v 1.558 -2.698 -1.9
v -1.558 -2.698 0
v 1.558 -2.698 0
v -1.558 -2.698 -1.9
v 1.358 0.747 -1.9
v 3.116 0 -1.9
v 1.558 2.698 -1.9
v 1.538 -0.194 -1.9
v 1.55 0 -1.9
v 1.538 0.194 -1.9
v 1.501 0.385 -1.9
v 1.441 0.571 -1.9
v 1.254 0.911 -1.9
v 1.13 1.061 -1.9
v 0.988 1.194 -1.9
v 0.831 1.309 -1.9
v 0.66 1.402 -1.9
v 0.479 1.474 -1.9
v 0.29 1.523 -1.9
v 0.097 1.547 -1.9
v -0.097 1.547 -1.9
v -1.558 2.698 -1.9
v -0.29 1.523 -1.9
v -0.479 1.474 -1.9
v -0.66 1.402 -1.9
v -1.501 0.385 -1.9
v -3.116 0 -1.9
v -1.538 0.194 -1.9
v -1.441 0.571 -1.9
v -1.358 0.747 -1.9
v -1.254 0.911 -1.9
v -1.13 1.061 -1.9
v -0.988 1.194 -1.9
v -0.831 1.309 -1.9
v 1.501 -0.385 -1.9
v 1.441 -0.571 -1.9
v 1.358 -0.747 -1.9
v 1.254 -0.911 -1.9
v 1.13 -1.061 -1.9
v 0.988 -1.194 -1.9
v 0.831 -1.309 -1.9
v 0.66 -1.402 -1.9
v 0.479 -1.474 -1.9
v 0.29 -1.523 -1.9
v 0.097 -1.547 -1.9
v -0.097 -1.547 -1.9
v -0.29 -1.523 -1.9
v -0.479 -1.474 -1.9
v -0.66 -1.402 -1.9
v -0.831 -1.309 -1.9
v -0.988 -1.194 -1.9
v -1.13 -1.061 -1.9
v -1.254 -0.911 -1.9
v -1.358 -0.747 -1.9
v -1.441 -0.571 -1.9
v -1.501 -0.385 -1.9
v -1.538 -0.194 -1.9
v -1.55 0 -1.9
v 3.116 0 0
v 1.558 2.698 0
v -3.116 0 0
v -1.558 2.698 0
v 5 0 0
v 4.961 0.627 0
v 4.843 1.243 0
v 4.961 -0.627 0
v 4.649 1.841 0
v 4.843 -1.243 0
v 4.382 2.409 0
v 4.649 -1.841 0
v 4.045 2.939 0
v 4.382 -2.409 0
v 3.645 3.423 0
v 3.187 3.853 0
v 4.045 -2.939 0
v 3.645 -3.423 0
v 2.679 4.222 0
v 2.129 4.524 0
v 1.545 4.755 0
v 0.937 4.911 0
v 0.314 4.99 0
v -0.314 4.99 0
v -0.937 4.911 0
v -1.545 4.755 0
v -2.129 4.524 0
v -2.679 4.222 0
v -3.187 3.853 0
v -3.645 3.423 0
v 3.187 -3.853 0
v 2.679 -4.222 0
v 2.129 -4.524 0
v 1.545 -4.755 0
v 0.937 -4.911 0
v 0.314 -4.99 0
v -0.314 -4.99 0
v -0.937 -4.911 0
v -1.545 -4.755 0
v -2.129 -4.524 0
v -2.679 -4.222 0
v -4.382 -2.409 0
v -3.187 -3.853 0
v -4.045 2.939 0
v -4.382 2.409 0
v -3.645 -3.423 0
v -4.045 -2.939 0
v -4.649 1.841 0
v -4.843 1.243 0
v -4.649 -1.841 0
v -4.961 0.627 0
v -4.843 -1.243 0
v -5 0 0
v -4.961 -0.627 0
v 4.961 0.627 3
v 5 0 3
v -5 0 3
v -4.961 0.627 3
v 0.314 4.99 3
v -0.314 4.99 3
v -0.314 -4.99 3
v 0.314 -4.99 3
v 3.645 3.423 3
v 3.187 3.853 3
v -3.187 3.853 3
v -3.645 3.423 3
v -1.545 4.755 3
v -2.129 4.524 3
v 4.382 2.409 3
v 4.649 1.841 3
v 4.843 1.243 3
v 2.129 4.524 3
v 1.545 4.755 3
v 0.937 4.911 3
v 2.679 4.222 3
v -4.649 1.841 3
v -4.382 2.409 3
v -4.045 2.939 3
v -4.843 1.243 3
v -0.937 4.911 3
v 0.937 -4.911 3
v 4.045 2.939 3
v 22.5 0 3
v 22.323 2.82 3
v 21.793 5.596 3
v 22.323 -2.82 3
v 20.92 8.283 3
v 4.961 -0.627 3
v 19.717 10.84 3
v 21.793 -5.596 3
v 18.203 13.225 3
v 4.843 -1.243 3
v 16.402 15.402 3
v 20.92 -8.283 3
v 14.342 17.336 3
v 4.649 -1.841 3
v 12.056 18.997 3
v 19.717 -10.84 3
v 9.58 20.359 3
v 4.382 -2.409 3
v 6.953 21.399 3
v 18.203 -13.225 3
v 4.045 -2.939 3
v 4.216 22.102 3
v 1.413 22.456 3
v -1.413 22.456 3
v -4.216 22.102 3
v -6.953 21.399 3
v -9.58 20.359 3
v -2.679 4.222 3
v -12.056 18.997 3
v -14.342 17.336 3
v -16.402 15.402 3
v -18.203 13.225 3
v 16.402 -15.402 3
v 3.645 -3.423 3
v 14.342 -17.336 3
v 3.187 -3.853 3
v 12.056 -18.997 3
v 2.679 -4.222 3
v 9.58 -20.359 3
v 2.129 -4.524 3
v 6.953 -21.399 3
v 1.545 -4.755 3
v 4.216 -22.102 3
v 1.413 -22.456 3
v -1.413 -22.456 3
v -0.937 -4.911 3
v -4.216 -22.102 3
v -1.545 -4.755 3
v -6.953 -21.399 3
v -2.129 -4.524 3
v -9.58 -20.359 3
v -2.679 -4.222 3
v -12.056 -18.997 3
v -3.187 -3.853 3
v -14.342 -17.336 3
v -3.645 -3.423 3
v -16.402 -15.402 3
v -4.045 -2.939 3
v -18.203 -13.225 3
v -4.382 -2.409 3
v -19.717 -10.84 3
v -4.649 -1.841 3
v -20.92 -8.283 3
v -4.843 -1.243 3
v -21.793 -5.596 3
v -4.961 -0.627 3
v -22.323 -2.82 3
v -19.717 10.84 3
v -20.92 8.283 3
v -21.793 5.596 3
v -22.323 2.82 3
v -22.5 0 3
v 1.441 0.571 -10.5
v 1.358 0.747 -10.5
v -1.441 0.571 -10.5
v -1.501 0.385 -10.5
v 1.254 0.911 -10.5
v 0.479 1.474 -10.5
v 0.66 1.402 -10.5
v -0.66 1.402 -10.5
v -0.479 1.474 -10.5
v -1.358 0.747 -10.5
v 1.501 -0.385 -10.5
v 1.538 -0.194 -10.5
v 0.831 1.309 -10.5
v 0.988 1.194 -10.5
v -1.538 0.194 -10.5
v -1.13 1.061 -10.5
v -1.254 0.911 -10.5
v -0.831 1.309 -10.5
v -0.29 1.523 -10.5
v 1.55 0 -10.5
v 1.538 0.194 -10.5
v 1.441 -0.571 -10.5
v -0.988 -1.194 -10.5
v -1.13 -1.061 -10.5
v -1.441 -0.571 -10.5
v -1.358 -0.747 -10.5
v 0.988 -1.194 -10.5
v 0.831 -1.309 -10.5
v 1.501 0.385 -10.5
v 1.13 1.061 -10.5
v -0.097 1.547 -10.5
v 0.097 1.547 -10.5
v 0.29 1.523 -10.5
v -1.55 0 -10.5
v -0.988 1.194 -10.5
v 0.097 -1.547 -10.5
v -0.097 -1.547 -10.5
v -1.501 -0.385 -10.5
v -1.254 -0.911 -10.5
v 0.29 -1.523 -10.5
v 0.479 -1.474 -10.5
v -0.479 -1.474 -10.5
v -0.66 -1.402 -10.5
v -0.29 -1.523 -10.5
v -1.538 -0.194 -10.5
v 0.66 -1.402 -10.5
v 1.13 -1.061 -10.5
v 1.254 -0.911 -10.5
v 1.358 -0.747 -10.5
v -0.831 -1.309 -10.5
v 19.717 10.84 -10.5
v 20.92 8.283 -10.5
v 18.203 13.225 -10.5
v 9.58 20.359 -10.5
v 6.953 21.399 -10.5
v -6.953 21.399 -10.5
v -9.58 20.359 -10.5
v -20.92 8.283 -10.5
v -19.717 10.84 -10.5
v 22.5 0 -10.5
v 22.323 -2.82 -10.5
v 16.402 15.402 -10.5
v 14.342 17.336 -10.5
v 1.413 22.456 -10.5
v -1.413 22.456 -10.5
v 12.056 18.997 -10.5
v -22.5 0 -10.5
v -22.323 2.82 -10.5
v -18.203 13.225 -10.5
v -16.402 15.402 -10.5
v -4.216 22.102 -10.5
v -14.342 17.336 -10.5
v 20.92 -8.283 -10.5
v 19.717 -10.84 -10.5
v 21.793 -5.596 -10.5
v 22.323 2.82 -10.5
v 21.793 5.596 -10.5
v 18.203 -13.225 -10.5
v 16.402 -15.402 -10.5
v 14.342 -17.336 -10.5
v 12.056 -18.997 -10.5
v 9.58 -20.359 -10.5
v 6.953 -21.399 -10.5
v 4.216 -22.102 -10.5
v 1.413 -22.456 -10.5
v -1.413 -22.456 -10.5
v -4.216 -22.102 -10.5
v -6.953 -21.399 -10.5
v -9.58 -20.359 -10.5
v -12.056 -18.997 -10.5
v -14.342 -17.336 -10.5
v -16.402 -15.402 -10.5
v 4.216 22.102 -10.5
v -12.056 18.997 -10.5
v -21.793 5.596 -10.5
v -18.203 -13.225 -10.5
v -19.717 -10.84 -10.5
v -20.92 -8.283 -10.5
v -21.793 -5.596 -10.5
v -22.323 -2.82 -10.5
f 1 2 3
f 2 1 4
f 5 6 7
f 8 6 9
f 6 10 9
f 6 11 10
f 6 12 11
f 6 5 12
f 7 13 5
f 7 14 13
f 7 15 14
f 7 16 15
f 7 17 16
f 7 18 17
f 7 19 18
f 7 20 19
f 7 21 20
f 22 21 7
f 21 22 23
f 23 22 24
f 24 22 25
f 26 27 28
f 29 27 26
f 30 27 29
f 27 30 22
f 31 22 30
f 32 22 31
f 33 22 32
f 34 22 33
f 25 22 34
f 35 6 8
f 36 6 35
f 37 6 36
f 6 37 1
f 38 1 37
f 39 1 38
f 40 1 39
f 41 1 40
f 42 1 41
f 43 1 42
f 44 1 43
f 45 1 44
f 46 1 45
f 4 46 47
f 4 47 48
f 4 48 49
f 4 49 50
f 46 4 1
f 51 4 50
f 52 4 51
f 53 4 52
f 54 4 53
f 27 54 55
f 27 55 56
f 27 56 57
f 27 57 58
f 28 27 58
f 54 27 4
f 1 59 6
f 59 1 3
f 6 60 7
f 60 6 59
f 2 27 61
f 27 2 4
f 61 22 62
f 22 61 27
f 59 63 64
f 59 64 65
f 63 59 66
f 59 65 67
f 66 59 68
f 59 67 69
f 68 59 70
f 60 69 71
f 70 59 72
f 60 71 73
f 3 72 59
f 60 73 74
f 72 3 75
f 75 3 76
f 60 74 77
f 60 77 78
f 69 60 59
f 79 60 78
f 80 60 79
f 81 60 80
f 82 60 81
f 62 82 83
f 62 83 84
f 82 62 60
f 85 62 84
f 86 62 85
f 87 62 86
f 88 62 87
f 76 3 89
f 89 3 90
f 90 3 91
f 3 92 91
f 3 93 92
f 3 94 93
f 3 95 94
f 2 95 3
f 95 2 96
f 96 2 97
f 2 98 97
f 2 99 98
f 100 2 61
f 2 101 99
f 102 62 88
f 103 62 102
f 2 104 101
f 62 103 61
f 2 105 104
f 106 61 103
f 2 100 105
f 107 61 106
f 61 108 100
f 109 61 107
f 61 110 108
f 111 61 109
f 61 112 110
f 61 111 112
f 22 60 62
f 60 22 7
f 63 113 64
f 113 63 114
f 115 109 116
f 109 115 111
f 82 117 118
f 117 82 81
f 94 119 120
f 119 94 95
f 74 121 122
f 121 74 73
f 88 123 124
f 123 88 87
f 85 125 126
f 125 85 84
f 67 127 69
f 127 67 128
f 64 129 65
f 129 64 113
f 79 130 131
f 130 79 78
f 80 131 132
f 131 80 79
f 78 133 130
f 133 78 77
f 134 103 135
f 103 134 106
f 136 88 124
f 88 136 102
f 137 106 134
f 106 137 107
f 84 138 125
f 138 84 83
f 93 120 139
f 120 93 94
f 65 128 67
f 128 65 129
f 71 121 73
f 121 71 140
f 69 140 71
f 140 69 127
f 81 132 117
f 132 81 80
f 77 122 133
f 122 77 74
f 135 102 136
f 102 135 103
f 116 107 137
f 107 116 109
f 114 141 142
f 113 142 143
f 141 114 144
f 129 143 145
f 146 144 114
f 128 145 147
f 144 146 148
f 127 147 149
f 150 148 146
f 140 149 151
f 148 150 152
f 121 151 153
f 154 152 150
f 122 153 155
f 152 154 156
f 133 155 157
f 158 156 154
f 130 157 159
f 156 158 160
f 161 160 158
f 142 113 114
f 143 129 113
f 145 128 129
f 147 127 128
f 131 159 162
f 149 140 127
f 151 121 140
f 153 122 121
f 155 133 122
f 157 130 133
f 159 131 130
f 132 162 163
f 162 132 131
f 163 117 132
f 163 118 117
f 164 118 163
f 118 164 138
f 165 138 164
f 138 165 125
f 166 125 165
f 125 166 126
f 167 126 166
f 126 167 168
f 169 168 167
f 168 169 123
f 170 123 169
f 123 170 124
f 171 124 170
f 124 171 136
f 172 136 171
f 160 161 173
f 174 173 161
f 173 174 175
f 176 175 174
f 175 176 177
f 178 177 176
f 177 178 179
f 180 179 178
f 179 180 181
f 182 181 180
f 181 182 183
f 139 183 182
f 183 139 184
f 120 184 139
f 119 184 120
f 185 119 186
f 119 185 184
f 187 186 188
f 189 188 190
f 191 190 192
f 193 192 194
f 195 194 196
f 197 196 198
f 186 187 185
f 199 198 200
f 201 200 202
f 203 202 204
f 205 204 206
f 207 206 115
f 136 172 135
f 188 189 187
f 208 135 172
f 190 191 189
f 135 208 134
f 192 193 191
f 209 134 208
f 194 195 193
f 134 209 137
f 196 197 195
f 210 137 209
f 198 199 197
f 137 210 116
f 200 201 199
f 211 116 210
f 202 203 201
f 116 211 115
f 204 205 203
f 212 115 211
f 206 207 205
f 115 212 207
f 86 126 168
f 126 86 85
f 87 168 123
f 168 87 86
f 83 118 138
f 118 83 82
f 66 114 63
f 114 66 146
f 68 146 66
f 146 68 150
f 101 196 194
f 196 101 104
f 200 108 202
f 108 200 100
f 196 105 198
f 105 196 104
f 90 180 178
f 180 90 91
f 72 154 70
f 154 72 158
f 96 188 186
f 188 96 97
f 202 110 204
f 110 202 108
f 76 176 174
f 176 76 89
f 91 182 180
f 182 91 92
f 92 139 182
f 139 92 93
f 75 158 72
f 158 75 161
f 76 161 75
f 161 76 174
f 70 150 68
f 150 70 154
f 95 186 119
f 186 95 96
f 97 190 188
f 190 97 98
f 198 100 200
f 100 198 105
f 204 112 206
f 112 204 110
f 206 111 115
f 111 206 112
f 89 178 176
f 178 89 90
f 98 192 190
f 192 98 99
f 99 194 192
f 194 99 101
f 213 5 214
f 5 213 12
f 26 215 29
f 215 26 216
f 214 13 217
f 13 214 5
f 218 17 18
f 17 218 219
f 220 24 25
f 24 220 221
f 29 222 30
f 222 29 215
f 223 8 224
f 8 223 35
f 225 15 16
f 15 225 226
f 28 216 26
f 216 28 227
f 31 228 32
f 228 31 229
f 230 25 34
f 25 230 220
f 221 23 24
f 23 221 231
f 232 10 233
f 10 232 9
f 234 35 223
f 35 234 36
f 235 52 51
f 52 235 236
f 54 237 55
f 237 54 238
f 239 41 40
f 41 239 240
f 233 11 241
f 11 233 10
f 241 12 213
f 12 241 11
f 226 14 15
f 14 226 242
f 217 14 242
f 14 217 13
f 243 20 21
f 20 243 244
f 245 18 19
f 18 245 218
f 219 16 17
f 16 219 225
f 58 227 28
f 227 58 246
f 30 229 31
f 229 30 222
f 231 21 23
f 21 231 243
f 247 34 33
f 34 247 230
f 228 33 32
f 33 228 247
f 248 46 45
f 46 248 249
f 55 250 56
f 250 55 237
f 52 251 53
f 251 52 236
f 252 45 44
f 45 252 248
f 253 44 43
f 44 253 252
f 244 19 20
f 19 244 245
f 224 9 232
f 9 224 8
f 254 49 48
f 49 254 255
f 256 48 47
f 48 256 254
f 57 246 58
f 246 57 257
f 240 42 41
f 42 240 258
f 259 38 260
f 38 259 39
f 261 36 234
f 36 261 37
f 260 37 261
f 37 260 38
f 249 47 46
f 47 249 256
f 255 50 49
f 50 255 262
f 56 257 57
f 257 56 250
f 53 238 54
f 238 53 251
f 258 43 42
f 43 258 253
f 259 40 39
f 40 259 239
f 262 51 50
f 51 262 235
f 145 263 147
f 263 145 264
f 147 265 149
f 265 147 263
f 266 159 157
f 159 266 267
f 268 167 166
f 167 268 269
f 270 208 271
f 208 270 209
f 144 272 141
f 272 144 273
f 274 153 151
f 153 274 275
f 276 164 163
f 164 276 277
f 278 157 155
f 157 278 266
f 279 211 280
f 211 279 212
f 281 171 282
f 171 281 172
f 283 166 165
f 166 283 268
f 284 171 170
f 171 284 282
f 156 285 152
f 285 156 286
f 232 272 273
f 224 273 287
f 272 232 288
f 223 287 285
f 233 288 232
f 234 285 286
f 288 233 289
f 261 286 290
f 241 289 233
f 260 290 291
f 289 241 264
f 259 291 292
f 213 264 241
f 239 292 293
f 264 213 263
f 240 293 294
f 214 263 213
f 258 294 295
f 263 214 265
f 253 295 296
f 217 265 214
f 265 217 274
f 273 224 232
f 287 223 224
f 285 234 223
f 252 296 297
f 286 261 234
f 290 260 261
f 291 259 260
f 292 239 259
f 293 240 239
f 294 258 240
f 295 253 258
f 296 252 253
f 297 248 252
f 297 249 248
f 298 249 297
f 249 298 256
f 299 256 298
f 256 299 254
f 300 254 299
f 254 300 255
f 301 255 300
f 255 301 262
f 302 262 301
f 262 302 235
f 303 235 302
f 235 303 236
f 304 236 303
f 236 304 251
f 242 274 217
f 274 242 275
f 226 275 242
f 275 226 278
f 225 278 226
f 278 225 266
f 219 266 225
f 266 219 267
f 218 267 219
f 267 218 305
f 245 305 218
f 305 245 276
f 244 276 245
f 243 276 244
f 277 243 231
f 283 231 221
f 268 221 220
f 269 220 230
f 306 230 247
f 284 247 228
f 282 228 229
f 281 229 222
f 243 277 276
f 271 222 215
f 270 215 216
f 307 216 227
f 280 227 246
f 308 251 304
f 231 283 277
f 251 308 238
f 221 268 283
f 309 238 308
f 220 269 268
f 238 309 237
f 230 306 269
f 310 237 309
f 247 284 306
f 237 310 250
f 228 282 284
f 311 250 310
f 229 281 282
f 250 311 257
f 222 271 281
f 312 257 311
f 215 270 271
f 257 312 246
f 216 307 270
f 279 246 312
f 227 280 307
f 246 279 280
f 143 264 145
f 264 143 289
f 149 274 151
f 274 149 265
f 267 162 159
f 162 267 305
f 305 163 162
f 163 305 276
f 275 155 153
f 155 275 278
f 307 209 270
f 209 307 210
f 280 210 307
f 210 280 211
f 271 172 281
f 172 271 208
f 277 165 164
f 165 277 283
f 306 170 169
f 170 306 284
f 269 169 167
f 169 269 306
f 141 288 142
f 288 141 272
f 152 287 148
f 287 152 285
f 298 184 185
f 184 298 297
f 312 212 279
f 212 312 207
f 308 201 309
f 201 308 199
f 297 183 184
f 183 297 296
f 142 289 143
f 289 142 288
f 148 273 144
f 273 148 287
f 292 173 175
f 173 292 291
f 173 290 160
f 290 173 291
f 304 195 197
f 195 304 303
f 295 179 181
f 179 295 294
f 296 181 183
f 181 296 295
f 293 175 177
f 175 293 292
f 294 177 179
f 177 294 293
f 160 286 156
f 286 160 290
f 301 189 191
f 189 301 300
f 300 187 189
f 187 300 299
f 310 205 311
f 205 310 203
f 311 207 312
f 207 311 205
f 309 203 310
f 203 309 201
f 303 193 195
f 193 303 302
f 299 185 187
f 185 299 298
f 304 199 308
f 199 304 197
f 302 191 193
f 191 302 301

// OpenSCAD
$fn = 50;


difference() {
	union() {
		translate(v = [0, 0, -10.5000000000]) {
			cylinder(h = 13.5000000000, r = 22.5000000000);
		}
	}
	union() {
		translate(v = [0, 0, 0]) {
			rotate(a = [0, 0, 0]) {
				difference() {
					union() {
						translate(v = [0, 0, -1.9000000000]) {
							linear_extrude(height = 1.9000000000) {
								polygon(points = [[3.1158000000, 0.0000000000], [1.5579000000, 2.6983619531], [-1.5579000000, 2.6983619531], [-3.1158000000, 0.0000000000], [-1.5579000000, -2.6983619531], [1.5579000000, -2.6983619531]]);
							}
						}
					}
					union();
				}
			}
		}
		#cylinder(h = 3, r = 5.0000000000);
		#translate(v = [0, 0, -100.0000000000]) {
			cylinder(h = 200, r = 1.5500000000);
		}
	}
}
